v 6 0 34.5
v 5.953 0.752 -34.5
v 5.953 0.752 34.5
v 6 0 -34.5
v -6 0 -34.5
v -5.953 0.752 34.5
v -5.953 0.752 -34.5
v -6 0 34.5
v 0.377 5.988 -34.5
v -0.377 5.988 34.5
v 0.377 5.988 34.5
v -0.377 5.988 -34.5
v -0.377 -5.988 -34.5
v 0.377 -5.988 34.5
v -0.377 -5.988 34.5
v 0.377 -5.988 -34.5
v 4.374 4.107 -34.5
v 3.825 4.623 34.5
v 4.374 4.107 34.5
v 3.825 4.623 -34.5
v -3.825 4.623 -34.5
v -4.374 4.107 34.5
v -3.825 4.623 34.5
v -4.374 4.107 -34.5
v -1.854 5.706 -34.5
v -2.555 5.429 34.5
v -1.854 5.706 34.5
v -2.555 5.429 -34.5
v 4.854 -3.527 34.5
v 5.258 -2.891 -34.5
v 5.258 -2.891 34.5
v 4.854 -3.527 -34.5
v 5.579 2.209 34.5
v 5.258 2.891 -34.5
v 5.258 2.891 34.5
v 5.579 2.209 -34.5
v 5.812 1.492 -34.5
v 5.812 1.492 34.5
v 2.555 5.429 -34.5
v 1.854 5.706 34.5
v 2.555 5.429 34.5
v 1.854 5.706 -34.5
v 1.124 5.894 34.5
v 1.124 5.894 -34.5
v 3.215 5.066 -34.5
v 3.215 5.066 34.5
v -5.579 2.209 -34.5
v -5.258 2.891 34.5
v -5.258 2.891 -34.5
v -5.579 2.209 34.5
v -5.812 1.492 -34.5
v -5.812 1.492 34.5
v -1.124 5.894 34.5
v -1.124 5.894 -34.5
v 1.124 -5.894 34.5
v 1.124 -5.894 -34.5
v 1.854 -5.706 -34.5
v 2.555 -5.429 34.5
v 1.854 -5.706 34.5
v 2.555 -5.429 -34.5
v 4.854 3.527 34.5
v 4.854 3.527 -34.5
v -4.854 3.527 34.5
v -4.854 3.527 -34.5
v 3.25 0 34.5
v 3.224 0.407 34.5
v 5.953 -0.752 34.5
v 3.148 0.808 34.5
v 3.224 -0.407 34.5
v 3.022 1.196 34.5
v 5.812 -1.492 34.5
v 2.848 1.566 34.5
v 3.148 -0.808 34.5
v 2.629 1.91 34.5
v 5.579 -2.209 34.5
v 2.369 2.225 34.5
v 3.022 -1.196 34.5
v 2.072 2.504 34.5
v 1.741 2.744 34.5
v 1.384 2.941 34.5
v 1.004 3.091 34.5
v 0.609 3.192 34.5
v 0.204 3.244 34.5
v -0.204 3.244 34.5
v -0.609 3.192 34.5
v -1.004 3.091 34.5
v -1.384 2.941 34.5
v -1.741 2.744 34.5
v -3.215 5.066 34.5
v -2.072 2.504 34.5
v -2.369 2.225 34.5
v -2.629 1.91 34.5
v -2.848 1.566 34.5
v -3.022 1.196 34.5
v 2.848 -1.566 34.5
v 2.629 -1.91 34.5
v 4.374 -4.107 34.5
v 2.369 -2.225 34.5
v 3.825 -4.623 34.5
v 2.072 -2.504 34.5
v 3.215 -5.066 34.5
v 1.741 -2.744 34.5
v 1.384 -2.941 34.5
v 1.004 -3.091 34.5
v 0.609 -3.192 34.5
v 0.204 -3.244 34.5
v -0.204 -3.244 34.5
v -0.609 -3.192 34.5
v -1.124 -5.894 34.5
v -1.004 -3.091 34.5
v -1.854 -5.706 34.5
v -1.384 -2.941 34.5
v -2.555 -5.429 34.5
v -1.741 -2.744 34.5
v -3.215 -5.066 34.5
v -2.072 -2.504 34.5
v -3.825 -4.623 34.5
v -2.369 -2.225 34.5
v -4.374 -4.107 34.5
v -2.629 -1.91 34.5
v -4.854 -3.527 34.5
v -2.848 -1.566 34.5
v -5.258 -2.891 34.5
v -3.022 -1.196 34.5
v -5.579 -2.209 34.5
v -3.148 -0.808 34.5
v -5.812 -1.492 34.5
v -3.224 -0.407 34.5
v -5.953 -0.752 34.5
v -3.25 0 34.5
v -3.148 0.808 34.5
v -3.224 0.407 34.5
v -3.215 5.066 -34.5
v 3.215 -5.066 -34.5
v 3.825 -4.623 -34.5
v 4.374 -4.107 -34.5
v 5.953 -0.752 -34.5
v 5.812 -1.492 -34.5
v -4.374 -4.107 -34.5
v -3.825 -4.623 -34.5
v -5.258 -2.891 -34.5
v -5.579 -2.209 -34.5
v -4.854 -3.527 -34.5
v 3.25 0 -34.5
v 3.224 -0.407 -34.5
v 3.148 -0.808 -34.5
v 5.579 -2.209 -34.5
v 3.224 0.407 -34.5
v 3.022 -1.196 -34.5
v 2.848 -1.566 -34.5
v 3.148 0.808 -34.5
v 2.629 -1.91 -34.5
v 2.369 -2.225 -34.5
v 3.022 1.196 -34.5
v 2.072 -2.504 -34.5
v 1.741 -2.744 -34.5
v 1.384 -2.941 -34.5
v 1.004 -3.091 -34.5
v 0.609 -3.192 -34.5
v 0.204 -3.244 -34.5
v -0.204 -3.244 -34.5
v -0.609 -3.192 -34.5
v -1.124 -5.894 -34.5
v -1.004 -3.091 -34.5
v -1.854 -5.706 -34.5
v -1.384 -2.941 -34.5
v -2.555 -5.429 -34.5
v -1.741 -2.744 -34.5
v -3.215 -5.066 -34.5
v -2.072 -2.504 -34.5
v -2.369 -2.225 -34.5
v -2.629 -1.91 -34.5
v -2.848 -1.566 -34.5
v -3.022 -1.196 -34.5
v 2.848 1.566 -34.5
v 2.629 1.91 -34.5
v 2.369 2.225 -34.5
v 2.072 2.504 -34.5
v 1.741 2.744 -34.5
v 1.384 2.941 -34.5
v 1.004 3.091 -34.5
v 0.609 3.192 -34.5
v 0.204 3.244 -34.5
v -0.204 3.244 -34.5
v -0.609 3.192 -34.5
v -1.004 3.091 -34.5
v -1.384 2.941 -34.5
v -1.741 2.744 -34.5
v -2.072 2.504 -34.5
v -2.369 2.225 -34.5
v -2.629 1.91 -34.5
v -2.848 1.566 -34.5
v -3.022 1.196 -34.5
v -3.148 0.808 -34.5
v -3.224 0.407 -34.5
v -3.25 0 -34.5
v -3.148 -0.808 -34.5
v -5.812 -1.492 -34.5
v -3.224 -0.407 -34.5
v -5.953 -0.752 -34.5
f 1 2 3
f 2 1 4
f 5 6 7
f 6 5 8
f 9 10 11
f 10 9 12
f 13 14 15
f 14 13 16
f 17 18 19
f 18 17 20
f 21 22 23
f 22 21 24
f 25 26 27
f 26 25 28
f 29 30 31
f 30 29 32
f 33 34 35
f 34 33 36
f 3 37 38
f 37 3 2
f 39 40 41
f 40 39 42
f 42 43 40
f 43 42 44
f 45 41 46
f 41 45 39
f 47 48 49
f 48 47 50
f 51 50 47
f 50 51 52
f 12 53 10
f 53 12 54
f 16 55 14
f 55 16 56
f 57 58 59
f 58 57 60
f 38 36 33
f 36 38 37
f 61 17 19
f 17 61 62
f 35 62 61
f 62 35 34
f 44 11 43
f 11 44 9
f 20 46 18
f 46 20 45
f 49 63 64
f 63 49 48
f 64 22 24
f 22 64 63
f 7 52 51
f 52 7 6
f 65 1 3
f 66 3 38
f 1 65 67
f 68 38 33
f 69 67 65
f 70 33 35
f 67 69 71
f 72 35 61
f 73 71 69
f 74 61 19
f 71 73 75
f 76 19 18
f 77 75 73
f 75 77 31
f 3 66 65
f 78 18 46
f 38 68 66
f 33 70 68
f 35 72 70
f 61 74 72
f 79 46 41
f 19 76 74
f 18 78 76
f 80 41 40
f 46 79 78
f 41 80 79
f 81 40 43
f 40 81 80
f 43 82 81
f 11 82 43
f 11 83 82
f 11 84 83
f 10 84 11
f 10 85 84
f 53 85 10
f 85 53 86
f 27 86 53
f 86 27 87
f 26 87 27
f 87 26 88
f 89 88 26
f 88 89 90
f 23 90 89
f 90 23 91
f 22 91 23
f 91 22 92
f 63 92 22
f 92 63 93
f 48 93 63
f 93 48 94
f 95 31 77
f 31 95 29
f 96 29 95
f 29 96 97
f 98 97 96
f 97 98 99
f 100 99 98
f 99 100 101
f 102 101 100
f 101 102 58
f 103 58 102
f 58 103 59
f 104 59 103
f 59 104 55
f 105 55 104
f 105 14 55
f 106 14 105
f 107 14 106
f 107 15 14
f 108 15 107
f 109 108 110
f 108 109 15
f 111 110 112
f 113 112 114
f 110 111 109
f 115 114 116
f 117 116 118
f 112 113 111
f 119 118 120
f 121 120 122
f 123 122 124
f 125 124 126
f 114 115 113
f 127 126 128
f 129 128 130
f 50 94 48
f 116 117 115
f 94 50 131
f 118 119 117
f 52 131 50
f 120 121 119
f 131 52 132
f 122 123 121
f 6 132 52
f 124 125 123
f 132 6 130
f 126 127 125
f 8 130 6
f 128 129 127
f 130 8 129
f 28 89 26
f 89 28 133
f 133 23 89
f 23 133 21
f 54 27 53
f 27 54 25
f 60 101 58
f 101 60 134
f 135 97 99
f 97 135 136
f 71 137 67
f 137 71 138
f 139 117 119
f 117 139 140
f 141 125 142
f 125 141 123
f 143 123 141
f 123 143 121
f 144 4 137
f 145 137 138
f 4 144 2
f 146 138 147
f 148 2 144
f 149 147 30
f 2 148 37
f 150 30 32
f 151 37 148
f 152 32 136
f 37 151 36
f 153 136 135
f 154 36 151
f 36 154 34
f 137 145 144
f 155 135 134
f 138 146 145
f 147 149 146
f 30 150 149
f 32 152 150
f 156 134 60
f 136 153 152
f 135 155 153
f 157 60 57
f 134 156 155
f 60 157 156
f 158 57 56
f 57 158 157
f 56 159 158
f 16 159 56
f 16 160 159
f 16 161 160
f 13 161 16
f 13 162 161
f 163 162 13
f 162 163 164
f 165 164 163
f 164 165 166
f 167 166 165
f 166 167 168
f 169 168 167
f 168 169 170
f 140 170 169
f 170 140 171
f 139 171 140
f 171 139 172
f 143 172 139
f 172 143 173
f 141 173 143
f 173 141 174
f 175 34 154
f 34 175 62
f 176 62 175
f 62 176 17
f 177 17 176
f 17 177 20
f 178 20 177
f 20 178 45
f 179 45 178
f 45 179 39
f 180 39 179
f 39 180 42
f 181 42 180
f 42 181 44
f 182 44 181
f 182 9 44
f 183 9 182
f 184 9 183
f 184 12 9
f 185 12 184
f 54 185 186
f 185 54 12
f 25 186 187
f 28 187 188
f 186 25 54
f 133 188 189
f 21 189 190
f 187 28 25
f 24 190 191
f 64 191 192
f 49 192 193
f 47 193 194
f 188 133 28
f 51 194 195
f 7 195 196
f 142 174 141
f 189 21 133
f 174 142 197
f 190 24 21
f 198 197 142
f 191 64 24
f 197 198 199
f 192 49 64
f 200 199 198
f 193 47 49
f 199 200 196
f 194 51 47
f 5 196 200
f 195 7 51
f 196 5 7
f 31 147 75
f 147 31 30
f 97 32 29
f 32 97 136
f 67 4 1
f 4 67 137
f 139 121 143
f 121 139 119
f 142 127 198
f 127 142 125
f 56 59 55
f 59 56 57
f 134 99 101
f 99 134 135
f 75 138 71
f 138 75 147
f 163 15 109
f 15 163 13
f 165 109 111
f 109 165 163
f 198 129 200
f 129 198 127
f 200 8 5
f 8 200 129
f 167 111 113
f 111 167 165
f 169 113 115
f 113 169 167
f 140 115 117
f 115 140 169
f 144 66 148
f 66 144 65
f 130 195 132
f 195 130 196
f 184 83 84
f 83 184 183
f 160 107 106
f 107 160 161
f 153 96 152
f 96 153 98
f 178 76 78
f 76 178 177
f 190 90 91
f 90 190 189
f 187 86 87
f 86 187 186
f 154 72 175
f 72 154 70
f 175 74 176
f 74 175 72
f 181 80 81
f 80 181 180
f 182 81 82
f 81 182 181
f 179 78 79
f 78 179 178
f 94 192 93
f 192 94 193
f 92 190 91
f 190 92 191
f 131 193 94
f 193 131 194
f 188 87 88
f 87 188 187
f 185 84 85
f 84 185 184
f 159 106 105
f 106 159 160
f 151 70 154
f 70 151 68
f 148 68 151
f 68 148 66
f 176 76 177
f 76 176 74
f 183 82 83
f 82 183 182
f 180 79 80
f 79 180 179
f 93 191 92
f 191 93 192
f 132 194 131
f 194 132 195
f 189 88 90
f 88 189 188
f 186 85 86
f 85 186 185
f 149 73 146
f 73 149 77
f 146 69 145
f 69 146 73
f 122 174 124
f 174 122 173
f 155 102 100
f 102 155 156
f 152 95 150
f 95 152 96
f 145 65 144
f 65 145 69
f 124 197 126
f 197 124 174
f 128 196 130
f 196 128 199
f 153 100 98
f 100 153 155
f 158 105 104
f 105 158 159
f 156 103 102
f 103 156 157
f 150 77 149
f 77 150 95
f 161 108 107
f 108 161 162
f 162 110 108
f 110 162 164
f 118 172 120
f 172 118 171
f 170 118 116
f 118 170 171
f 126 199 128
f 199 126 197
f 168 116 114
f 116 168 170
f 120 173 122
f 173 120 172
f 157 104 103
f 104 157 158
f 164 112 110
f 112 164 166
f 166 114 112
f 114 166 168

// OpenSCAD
$fn = 50;


difference() {
	union() {
		translate(v = [0, 0, -34.5000000000]) {
			cylinder(h = 69, r = 6.0000000000);
		}
	}
	union() {
		translate(v = [0, 0, -100.0000000000]) {
			cylinder(h = 200, r = 3.2500000000);
		}
	}
}
